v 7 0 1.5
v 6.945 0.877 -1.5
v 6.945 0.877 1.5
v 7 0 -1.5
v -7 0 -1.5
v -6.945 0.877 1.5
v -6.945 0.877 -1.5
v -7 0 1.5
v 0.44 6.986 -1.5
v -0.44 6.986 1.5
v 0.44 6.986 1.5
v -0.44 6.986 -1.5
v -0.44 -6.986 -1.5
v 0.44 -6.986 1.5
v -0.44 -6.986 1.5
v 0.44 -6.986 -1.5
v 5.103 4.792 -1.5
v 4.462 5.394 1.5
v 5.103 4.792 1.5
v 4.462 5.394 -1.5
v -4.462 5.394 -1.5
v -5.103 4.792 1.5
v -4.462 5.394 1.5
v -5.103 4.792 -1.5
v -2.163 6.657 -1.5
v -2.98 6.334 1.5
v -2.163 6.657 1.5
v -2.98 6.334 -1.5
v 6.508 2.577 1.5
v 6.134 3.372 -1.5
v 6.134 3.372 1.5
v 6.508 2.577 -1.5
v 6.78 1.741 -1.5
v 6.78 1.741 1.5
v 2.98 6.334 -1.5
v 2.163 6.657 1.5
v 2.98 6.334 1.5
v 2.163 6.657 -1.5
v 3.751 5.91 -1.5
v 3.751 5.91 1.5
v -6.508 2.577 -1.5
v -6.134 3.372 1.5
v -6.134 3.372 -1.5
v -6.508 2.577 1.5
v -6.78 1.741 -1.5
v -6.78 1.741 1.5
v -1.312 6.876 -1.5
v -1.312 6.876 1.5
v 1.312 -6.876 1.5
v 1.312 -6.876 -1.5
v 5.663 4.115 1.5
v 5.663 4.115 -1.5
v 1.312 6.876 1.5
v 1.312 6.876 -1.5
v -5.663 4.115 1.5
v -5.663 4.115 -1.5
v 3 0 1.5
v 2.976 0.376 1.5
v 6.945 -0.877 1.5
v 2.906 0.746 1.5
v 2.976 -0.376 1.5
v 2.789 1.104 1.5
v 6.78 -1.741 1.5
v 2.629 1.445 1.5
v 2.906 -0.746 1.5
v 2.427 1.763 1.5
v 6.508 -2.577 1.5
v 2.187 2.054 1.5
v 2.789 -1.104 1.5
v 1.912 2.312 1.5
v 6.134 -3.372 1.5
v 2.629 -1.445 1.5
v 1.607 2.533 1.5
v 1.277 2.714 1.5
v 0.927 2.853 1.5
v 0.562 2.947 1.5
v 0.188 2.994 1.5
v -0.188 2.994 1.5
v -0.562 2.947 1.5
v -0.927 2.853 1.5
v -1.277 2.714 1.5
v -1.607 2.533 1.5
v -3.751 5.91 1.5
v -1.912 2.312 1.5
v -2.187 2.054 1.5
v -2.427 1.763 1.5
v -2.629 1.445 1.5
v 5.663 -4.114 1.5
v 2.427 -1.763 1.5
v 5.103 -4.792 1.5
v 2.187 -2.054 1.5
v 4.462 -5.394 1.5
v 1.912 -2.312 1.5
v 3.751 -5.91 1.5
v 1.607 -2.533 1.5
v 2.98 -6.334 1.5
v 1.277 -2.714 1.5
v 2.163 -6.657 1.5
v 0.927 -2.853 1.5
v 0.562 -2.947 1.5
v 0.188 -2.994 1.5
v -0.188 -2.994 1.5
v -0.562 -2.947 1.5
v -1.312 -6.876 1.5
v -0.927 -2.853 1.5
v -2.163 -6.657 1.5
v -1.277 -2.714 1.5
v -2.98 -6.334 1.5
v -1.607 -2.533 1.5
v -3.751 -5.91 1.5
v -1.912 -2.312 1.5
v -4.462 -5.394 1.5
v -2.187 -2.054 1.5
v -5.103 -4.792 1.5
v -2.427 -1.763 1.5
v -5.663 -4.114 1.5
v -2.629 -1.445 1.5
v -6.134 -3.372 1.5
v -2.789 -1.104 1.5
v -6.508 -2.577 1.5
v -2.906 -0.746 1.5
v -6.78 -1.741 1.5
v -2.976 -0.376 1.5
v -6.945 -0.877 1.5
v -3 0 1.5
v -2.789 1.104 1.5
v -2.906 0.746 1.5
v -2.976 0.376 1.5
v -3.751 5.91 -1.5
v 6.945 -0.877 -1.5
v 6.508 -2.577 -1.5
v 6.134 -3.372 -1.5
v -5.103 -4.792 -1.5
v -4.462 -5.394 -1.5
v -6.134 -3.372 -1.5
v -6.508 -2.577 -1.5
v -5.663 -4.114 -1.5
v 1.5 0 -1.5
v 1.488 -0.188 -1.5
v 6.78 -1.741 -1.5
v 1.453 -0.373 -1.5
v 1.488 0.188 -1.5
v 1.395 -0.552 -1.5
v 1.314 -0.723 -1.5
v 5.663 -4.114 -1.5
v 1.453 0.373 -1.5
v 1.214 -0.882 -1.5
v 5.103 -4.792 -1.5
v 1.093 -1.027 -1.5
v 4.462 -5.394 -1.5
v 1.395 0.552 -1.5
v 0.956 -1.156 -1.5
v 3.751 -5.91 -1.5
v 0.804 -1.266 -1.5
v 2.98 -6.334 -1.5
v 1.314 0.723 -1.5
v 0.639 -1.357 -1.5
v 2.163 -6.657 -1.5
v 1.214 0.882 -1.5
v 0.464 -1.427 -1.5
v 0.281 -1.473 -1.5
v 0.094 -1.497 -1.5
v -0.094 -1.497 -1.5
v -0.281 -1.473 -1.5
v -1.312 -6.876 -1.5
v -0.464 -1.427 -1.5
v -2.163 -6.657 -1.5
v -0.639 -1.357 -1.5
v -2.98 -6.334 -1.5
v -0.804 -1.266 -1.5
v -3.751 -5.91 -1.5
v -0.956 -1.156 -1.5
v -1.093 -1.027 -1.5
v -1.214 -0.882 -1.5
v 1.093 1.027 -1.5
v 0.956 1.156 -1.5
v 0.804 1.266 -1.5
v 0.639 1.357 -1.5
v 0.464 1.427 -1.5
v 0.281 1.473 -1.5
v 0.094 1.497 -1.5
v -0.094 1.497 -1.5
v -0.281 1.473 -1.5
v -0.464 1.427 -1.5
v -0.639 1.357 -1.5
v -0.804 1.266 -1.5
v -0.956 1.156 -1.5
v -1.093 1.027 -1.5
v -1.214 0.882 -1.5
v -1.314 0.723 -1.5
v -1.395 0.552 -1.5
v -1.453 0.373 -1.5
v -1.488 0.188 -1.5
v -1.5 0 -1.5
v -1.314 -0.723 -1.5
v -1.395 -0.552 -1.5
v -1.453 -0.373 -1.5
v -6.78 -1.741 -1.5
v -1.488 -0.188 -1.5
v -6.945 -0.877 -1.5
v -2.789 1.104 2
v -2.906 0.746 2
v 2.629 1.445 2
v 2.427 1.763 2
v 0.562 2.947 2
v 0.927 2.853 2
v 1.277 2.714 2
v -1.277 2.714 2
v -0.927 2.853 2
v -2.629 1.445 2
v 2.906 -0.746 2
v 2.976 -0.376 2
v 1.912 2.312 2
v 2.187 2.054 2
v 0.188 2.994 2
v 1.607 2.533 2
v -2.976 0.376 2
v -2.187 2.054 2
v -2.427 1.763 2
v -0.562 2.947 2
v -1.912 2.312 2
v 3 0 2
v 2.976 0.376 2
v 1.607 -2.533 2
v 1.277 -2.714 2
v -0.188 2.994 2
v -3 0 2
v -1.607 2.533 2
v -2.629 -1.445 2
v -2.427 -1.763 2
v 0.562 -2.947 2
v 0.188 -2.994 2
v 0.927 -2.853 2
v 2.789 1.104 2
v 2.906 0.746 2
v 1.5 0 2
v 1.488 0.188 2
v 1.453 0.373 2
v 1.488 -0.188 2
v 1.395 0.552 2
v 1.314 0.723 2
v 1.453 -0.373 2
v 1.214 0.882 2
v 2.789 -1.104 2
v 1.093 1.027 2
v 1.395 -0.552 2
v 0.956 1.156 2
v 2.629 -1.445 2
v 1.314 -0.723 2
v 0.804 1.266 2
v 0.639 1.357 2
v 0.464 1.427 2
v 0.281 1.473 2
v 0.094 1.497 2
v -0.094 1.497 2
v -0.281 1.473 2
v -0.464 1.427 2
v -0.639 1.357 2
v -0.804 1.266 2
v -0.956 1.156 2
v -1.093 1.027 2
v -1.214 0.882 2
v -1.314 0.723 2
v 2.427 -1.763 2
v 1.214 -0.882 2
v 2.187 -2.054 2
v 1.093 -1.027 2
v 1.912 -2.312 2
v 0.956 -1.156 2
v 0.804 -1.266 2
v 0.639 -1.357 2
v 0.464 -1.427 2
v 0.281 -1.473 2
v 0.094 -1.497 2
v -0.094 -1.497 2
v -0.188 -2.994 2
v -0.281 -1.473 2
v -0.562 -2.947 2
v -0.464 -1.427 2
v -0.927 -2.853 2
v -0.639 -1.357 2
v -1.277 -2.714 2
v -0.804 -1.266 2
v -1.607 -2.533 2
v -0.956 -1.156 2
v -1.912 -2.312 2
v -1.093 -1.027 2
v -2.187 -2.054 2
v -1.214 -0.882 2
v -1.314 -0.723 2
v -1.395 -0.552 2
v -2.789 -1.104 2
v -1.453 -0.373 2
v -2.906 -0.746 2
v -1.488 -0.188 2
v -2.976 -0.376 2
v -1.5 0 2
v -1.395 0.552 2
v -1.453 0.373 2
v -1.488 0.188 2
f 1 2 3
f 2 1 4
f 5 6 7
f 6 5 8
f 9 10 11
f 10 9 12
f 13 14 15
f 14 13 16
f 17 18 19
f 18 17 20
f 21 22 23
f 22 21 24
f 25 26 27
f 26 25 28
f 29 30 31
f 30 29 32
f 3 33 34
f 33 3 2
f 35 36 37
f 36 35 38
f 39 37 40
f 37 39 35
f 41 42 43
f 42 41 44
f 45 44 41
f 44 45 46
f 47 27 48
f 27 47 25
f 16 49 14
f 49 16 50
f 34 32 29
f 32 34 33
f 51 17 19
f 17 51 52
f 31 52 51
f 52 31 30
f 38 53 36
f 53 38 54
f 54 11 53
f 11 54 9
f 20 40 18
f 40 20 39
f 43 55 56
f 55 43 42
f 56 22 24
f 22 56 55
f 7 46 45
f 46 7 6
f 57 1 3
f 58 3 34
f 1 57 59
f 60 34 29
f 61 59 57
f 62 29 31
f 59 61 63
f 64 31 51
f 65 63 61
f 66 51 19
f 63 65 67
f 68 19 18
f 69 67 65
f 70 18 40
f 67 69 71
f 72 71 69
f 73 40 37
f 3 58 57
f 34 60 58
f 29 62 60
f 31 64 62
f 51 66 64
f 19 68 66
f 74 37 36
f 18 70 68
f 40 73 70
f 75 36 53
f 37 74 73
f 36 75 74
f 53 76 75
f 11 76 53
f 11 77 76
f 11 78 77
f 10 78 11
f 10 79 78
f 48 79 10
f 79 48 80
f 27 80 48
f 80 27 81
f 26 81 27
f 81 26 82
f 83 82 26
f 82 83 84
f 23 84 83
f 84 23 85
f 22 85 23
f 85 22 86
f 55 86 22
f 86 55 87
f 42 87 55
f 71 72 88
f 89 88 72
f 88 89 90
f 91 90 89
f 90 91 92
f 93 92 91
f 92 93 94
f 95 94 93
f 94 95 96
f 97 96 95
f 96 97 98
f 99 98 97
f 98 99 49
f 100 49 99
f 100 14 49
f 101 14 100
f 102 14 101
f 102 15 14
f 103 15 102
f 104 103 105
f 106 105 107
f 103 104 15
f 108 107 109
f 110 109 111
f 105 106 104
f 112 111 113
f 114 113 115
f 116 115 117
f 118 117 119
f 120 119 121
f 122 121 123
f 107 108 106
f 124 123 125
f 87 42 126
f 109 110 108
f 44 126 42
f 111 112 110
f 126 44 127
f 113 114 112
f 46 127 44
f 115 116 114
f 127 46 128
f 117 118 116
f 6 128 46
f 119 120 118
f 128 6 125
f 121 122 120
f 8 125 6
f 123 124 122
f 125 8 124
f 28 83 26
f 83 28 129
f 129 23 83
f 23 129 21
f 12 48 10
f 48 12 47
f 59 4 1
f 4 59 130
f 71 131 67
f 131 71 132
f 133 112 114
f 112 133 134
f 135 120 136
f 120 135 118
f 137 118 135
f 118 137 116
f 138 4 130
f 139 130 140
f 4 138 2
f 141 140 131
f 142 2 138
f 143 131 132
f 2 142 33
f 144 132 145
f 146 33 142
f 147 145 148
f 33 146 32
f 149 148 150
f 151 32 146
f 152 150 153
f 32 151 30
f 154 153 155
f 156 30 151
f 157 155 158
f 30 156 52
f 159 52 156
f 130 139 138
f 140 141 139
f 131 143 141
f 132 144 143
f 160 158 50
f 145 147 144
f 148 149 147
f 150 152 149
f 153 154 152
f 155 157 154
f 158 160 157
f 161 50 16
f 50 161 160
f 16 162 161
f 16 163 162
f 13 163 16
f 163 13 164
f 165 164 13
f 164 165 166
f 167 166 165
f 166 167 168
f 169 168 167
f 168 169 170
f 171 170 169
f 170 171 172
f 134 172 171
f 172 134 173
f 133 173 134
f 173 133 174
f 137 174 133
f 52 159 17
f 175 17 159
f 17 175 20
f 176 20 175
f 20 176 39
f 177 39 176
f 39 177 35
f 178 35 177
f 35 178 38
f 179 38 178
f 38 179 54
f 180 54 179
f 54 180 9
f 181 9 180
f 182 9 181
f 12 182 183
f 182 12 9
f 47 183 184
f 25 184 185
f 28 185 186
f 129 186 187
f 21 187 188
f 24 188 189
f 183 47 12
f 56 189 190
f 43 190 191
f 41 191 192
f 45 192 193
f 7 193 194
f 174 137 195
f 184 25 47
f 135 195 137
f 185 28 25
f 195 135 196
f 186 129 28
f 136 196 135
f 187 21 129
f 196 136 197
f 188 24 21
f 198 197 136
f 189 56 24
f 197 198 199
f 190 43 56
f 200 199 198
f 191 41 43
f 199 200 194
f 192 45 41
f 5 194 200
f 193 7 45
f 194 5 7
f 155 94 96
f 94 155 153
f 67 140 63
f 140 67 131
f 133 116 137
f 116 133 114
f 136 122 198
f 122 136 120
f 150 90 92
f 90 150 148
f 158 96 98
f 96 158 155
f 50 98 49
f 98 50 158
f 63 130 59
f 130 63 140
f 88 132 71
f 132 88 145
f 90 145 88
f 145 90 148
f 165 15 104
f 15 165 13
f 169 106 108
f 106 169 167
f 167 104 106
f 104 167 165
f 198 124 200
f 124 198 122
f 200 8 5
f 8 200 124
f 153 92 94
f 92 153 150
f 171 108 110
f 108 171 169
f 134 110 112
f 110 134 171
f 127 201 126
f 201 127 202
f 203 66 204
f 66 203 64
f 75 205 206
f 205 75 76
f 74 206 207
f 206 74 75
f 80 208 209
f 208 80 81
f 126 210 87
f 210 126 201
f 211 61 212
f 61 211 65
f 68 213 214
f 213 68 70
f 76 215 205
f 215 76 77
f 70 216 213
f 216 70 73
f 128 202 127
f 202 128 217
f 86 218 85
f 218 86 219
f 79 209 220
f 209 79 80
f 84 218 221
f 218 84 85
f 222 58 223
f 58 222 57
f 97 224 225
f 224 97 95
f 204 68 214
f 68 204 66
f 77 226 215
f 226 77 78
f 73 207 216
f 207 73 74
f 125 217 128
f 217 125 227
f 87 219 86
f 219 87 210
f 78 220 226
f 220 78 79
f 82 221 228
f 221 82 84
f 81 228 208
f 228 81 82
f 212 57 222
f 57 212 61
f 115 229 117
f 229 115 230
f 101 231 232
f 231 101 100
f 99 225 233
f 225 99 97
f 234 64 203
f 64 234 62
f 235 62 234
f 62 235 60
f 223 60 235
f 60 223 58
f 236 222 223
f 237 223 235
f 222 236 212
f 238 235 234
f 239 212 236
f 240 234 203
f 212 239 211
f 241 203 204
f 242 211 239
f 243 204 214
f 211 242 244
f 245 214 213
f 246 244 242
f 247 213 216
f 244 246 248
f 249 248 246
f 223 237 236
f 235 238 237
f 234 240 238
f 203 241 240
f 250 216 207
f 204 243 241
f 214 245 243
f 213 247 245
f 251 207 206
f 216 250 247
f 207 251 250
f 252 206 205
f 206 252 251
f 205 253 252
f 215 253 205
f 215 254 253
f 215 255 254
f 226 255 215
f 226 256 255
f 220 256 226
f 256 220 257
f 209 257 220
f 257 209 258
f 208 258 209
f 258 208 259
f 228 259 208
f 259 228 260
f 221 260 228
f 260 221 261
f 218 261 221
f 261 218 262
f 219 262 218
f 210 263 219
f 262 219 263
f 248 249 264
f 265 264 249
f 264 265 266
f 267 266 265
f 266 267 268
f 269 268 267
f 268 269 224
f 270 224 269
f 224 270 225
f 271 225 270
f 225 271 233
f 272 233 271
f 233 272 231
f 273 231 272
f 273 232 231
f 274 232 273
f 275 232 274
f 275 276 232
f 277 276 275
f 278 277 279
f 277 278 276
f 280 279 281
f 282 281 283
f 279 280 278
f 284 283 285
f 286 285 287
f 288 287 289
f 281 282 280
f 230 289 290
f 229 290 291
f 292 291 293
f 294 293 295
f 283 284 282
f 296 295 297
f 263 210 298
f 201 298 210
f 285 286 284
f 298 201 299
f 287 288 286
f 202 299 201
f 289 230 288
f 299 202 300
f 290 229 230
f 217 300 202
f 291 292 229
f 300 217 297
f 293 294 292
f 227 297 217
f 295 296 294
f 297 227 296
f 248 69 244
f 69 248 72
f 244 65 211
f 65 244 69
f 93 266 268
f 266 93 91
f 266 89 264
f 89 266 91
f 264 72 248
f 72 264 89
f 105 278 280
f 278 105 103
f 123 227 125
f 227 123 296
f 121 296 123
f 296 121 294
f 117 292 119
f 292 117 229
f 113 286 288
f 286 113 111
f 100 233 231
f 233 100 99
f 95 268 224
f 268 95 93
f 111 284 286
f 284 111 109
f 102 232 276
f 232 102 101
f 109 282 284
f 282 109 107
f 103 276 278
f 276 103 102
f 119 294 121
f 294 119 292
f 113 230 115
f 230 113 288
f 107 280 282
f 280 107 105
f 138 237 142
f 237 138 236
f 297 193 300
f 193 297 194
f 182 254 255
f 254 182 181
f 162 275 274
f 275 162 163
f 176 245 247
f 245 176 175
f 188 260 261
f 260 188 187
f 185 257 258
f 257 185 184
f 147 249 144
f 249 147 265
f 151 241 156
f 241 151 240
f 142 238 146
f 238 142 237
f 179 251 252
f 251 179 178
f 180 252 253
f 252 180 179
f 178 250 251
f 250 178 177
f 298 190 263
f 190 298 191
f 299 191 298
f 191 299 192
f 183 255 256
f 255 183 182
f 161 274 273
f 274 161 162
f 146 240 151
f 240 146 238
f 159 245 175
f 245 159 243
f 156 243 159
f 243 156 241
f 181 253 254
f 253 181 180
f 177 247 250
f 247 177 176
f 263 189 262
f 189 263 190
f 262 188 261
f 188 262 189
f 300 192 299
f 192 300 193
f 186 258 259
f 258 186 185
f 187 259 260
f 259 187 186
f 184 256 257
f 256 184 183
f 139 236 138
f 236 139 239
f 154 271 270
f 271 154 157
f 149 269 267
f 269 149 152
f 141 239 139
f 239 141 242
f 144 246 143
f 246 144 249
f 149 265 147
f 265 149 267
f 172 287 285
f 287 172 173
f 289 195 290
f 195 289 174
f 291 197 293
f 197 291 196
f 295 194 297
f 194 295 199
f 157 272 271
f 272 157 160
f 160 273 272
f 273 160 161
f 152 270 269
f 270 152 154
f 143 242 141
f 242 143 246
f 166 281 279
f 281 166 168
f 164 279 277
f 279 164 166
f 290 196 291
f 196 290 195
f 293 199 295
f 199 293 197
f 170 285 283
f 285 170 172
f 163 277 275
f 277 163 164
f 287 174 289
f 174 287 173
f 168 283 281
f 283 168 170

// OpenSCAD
$fn = 50;


difference() {
	union() {
		translate(v = [0, 0, -1.5000000000]) {
			rotate(a = [0, 0, 0]) {
				cylinder(h = 3, r = 7.0000000000);
			}
		}
		translate(v = [0, 0, -1.5000000000]) {
			rotate(a = [0, 0, 0]) {
				cylinder(h = 3.5000000000, r = 3.0000000000);
			}
		}
	}
	union() {
		translate(v = [0, 0, -125.0000000000]) {
			rotate(a = [0, 0, 0]) {
				cylinder(h = 250, r = 1.5000000000);
			}
		}
	}
}
